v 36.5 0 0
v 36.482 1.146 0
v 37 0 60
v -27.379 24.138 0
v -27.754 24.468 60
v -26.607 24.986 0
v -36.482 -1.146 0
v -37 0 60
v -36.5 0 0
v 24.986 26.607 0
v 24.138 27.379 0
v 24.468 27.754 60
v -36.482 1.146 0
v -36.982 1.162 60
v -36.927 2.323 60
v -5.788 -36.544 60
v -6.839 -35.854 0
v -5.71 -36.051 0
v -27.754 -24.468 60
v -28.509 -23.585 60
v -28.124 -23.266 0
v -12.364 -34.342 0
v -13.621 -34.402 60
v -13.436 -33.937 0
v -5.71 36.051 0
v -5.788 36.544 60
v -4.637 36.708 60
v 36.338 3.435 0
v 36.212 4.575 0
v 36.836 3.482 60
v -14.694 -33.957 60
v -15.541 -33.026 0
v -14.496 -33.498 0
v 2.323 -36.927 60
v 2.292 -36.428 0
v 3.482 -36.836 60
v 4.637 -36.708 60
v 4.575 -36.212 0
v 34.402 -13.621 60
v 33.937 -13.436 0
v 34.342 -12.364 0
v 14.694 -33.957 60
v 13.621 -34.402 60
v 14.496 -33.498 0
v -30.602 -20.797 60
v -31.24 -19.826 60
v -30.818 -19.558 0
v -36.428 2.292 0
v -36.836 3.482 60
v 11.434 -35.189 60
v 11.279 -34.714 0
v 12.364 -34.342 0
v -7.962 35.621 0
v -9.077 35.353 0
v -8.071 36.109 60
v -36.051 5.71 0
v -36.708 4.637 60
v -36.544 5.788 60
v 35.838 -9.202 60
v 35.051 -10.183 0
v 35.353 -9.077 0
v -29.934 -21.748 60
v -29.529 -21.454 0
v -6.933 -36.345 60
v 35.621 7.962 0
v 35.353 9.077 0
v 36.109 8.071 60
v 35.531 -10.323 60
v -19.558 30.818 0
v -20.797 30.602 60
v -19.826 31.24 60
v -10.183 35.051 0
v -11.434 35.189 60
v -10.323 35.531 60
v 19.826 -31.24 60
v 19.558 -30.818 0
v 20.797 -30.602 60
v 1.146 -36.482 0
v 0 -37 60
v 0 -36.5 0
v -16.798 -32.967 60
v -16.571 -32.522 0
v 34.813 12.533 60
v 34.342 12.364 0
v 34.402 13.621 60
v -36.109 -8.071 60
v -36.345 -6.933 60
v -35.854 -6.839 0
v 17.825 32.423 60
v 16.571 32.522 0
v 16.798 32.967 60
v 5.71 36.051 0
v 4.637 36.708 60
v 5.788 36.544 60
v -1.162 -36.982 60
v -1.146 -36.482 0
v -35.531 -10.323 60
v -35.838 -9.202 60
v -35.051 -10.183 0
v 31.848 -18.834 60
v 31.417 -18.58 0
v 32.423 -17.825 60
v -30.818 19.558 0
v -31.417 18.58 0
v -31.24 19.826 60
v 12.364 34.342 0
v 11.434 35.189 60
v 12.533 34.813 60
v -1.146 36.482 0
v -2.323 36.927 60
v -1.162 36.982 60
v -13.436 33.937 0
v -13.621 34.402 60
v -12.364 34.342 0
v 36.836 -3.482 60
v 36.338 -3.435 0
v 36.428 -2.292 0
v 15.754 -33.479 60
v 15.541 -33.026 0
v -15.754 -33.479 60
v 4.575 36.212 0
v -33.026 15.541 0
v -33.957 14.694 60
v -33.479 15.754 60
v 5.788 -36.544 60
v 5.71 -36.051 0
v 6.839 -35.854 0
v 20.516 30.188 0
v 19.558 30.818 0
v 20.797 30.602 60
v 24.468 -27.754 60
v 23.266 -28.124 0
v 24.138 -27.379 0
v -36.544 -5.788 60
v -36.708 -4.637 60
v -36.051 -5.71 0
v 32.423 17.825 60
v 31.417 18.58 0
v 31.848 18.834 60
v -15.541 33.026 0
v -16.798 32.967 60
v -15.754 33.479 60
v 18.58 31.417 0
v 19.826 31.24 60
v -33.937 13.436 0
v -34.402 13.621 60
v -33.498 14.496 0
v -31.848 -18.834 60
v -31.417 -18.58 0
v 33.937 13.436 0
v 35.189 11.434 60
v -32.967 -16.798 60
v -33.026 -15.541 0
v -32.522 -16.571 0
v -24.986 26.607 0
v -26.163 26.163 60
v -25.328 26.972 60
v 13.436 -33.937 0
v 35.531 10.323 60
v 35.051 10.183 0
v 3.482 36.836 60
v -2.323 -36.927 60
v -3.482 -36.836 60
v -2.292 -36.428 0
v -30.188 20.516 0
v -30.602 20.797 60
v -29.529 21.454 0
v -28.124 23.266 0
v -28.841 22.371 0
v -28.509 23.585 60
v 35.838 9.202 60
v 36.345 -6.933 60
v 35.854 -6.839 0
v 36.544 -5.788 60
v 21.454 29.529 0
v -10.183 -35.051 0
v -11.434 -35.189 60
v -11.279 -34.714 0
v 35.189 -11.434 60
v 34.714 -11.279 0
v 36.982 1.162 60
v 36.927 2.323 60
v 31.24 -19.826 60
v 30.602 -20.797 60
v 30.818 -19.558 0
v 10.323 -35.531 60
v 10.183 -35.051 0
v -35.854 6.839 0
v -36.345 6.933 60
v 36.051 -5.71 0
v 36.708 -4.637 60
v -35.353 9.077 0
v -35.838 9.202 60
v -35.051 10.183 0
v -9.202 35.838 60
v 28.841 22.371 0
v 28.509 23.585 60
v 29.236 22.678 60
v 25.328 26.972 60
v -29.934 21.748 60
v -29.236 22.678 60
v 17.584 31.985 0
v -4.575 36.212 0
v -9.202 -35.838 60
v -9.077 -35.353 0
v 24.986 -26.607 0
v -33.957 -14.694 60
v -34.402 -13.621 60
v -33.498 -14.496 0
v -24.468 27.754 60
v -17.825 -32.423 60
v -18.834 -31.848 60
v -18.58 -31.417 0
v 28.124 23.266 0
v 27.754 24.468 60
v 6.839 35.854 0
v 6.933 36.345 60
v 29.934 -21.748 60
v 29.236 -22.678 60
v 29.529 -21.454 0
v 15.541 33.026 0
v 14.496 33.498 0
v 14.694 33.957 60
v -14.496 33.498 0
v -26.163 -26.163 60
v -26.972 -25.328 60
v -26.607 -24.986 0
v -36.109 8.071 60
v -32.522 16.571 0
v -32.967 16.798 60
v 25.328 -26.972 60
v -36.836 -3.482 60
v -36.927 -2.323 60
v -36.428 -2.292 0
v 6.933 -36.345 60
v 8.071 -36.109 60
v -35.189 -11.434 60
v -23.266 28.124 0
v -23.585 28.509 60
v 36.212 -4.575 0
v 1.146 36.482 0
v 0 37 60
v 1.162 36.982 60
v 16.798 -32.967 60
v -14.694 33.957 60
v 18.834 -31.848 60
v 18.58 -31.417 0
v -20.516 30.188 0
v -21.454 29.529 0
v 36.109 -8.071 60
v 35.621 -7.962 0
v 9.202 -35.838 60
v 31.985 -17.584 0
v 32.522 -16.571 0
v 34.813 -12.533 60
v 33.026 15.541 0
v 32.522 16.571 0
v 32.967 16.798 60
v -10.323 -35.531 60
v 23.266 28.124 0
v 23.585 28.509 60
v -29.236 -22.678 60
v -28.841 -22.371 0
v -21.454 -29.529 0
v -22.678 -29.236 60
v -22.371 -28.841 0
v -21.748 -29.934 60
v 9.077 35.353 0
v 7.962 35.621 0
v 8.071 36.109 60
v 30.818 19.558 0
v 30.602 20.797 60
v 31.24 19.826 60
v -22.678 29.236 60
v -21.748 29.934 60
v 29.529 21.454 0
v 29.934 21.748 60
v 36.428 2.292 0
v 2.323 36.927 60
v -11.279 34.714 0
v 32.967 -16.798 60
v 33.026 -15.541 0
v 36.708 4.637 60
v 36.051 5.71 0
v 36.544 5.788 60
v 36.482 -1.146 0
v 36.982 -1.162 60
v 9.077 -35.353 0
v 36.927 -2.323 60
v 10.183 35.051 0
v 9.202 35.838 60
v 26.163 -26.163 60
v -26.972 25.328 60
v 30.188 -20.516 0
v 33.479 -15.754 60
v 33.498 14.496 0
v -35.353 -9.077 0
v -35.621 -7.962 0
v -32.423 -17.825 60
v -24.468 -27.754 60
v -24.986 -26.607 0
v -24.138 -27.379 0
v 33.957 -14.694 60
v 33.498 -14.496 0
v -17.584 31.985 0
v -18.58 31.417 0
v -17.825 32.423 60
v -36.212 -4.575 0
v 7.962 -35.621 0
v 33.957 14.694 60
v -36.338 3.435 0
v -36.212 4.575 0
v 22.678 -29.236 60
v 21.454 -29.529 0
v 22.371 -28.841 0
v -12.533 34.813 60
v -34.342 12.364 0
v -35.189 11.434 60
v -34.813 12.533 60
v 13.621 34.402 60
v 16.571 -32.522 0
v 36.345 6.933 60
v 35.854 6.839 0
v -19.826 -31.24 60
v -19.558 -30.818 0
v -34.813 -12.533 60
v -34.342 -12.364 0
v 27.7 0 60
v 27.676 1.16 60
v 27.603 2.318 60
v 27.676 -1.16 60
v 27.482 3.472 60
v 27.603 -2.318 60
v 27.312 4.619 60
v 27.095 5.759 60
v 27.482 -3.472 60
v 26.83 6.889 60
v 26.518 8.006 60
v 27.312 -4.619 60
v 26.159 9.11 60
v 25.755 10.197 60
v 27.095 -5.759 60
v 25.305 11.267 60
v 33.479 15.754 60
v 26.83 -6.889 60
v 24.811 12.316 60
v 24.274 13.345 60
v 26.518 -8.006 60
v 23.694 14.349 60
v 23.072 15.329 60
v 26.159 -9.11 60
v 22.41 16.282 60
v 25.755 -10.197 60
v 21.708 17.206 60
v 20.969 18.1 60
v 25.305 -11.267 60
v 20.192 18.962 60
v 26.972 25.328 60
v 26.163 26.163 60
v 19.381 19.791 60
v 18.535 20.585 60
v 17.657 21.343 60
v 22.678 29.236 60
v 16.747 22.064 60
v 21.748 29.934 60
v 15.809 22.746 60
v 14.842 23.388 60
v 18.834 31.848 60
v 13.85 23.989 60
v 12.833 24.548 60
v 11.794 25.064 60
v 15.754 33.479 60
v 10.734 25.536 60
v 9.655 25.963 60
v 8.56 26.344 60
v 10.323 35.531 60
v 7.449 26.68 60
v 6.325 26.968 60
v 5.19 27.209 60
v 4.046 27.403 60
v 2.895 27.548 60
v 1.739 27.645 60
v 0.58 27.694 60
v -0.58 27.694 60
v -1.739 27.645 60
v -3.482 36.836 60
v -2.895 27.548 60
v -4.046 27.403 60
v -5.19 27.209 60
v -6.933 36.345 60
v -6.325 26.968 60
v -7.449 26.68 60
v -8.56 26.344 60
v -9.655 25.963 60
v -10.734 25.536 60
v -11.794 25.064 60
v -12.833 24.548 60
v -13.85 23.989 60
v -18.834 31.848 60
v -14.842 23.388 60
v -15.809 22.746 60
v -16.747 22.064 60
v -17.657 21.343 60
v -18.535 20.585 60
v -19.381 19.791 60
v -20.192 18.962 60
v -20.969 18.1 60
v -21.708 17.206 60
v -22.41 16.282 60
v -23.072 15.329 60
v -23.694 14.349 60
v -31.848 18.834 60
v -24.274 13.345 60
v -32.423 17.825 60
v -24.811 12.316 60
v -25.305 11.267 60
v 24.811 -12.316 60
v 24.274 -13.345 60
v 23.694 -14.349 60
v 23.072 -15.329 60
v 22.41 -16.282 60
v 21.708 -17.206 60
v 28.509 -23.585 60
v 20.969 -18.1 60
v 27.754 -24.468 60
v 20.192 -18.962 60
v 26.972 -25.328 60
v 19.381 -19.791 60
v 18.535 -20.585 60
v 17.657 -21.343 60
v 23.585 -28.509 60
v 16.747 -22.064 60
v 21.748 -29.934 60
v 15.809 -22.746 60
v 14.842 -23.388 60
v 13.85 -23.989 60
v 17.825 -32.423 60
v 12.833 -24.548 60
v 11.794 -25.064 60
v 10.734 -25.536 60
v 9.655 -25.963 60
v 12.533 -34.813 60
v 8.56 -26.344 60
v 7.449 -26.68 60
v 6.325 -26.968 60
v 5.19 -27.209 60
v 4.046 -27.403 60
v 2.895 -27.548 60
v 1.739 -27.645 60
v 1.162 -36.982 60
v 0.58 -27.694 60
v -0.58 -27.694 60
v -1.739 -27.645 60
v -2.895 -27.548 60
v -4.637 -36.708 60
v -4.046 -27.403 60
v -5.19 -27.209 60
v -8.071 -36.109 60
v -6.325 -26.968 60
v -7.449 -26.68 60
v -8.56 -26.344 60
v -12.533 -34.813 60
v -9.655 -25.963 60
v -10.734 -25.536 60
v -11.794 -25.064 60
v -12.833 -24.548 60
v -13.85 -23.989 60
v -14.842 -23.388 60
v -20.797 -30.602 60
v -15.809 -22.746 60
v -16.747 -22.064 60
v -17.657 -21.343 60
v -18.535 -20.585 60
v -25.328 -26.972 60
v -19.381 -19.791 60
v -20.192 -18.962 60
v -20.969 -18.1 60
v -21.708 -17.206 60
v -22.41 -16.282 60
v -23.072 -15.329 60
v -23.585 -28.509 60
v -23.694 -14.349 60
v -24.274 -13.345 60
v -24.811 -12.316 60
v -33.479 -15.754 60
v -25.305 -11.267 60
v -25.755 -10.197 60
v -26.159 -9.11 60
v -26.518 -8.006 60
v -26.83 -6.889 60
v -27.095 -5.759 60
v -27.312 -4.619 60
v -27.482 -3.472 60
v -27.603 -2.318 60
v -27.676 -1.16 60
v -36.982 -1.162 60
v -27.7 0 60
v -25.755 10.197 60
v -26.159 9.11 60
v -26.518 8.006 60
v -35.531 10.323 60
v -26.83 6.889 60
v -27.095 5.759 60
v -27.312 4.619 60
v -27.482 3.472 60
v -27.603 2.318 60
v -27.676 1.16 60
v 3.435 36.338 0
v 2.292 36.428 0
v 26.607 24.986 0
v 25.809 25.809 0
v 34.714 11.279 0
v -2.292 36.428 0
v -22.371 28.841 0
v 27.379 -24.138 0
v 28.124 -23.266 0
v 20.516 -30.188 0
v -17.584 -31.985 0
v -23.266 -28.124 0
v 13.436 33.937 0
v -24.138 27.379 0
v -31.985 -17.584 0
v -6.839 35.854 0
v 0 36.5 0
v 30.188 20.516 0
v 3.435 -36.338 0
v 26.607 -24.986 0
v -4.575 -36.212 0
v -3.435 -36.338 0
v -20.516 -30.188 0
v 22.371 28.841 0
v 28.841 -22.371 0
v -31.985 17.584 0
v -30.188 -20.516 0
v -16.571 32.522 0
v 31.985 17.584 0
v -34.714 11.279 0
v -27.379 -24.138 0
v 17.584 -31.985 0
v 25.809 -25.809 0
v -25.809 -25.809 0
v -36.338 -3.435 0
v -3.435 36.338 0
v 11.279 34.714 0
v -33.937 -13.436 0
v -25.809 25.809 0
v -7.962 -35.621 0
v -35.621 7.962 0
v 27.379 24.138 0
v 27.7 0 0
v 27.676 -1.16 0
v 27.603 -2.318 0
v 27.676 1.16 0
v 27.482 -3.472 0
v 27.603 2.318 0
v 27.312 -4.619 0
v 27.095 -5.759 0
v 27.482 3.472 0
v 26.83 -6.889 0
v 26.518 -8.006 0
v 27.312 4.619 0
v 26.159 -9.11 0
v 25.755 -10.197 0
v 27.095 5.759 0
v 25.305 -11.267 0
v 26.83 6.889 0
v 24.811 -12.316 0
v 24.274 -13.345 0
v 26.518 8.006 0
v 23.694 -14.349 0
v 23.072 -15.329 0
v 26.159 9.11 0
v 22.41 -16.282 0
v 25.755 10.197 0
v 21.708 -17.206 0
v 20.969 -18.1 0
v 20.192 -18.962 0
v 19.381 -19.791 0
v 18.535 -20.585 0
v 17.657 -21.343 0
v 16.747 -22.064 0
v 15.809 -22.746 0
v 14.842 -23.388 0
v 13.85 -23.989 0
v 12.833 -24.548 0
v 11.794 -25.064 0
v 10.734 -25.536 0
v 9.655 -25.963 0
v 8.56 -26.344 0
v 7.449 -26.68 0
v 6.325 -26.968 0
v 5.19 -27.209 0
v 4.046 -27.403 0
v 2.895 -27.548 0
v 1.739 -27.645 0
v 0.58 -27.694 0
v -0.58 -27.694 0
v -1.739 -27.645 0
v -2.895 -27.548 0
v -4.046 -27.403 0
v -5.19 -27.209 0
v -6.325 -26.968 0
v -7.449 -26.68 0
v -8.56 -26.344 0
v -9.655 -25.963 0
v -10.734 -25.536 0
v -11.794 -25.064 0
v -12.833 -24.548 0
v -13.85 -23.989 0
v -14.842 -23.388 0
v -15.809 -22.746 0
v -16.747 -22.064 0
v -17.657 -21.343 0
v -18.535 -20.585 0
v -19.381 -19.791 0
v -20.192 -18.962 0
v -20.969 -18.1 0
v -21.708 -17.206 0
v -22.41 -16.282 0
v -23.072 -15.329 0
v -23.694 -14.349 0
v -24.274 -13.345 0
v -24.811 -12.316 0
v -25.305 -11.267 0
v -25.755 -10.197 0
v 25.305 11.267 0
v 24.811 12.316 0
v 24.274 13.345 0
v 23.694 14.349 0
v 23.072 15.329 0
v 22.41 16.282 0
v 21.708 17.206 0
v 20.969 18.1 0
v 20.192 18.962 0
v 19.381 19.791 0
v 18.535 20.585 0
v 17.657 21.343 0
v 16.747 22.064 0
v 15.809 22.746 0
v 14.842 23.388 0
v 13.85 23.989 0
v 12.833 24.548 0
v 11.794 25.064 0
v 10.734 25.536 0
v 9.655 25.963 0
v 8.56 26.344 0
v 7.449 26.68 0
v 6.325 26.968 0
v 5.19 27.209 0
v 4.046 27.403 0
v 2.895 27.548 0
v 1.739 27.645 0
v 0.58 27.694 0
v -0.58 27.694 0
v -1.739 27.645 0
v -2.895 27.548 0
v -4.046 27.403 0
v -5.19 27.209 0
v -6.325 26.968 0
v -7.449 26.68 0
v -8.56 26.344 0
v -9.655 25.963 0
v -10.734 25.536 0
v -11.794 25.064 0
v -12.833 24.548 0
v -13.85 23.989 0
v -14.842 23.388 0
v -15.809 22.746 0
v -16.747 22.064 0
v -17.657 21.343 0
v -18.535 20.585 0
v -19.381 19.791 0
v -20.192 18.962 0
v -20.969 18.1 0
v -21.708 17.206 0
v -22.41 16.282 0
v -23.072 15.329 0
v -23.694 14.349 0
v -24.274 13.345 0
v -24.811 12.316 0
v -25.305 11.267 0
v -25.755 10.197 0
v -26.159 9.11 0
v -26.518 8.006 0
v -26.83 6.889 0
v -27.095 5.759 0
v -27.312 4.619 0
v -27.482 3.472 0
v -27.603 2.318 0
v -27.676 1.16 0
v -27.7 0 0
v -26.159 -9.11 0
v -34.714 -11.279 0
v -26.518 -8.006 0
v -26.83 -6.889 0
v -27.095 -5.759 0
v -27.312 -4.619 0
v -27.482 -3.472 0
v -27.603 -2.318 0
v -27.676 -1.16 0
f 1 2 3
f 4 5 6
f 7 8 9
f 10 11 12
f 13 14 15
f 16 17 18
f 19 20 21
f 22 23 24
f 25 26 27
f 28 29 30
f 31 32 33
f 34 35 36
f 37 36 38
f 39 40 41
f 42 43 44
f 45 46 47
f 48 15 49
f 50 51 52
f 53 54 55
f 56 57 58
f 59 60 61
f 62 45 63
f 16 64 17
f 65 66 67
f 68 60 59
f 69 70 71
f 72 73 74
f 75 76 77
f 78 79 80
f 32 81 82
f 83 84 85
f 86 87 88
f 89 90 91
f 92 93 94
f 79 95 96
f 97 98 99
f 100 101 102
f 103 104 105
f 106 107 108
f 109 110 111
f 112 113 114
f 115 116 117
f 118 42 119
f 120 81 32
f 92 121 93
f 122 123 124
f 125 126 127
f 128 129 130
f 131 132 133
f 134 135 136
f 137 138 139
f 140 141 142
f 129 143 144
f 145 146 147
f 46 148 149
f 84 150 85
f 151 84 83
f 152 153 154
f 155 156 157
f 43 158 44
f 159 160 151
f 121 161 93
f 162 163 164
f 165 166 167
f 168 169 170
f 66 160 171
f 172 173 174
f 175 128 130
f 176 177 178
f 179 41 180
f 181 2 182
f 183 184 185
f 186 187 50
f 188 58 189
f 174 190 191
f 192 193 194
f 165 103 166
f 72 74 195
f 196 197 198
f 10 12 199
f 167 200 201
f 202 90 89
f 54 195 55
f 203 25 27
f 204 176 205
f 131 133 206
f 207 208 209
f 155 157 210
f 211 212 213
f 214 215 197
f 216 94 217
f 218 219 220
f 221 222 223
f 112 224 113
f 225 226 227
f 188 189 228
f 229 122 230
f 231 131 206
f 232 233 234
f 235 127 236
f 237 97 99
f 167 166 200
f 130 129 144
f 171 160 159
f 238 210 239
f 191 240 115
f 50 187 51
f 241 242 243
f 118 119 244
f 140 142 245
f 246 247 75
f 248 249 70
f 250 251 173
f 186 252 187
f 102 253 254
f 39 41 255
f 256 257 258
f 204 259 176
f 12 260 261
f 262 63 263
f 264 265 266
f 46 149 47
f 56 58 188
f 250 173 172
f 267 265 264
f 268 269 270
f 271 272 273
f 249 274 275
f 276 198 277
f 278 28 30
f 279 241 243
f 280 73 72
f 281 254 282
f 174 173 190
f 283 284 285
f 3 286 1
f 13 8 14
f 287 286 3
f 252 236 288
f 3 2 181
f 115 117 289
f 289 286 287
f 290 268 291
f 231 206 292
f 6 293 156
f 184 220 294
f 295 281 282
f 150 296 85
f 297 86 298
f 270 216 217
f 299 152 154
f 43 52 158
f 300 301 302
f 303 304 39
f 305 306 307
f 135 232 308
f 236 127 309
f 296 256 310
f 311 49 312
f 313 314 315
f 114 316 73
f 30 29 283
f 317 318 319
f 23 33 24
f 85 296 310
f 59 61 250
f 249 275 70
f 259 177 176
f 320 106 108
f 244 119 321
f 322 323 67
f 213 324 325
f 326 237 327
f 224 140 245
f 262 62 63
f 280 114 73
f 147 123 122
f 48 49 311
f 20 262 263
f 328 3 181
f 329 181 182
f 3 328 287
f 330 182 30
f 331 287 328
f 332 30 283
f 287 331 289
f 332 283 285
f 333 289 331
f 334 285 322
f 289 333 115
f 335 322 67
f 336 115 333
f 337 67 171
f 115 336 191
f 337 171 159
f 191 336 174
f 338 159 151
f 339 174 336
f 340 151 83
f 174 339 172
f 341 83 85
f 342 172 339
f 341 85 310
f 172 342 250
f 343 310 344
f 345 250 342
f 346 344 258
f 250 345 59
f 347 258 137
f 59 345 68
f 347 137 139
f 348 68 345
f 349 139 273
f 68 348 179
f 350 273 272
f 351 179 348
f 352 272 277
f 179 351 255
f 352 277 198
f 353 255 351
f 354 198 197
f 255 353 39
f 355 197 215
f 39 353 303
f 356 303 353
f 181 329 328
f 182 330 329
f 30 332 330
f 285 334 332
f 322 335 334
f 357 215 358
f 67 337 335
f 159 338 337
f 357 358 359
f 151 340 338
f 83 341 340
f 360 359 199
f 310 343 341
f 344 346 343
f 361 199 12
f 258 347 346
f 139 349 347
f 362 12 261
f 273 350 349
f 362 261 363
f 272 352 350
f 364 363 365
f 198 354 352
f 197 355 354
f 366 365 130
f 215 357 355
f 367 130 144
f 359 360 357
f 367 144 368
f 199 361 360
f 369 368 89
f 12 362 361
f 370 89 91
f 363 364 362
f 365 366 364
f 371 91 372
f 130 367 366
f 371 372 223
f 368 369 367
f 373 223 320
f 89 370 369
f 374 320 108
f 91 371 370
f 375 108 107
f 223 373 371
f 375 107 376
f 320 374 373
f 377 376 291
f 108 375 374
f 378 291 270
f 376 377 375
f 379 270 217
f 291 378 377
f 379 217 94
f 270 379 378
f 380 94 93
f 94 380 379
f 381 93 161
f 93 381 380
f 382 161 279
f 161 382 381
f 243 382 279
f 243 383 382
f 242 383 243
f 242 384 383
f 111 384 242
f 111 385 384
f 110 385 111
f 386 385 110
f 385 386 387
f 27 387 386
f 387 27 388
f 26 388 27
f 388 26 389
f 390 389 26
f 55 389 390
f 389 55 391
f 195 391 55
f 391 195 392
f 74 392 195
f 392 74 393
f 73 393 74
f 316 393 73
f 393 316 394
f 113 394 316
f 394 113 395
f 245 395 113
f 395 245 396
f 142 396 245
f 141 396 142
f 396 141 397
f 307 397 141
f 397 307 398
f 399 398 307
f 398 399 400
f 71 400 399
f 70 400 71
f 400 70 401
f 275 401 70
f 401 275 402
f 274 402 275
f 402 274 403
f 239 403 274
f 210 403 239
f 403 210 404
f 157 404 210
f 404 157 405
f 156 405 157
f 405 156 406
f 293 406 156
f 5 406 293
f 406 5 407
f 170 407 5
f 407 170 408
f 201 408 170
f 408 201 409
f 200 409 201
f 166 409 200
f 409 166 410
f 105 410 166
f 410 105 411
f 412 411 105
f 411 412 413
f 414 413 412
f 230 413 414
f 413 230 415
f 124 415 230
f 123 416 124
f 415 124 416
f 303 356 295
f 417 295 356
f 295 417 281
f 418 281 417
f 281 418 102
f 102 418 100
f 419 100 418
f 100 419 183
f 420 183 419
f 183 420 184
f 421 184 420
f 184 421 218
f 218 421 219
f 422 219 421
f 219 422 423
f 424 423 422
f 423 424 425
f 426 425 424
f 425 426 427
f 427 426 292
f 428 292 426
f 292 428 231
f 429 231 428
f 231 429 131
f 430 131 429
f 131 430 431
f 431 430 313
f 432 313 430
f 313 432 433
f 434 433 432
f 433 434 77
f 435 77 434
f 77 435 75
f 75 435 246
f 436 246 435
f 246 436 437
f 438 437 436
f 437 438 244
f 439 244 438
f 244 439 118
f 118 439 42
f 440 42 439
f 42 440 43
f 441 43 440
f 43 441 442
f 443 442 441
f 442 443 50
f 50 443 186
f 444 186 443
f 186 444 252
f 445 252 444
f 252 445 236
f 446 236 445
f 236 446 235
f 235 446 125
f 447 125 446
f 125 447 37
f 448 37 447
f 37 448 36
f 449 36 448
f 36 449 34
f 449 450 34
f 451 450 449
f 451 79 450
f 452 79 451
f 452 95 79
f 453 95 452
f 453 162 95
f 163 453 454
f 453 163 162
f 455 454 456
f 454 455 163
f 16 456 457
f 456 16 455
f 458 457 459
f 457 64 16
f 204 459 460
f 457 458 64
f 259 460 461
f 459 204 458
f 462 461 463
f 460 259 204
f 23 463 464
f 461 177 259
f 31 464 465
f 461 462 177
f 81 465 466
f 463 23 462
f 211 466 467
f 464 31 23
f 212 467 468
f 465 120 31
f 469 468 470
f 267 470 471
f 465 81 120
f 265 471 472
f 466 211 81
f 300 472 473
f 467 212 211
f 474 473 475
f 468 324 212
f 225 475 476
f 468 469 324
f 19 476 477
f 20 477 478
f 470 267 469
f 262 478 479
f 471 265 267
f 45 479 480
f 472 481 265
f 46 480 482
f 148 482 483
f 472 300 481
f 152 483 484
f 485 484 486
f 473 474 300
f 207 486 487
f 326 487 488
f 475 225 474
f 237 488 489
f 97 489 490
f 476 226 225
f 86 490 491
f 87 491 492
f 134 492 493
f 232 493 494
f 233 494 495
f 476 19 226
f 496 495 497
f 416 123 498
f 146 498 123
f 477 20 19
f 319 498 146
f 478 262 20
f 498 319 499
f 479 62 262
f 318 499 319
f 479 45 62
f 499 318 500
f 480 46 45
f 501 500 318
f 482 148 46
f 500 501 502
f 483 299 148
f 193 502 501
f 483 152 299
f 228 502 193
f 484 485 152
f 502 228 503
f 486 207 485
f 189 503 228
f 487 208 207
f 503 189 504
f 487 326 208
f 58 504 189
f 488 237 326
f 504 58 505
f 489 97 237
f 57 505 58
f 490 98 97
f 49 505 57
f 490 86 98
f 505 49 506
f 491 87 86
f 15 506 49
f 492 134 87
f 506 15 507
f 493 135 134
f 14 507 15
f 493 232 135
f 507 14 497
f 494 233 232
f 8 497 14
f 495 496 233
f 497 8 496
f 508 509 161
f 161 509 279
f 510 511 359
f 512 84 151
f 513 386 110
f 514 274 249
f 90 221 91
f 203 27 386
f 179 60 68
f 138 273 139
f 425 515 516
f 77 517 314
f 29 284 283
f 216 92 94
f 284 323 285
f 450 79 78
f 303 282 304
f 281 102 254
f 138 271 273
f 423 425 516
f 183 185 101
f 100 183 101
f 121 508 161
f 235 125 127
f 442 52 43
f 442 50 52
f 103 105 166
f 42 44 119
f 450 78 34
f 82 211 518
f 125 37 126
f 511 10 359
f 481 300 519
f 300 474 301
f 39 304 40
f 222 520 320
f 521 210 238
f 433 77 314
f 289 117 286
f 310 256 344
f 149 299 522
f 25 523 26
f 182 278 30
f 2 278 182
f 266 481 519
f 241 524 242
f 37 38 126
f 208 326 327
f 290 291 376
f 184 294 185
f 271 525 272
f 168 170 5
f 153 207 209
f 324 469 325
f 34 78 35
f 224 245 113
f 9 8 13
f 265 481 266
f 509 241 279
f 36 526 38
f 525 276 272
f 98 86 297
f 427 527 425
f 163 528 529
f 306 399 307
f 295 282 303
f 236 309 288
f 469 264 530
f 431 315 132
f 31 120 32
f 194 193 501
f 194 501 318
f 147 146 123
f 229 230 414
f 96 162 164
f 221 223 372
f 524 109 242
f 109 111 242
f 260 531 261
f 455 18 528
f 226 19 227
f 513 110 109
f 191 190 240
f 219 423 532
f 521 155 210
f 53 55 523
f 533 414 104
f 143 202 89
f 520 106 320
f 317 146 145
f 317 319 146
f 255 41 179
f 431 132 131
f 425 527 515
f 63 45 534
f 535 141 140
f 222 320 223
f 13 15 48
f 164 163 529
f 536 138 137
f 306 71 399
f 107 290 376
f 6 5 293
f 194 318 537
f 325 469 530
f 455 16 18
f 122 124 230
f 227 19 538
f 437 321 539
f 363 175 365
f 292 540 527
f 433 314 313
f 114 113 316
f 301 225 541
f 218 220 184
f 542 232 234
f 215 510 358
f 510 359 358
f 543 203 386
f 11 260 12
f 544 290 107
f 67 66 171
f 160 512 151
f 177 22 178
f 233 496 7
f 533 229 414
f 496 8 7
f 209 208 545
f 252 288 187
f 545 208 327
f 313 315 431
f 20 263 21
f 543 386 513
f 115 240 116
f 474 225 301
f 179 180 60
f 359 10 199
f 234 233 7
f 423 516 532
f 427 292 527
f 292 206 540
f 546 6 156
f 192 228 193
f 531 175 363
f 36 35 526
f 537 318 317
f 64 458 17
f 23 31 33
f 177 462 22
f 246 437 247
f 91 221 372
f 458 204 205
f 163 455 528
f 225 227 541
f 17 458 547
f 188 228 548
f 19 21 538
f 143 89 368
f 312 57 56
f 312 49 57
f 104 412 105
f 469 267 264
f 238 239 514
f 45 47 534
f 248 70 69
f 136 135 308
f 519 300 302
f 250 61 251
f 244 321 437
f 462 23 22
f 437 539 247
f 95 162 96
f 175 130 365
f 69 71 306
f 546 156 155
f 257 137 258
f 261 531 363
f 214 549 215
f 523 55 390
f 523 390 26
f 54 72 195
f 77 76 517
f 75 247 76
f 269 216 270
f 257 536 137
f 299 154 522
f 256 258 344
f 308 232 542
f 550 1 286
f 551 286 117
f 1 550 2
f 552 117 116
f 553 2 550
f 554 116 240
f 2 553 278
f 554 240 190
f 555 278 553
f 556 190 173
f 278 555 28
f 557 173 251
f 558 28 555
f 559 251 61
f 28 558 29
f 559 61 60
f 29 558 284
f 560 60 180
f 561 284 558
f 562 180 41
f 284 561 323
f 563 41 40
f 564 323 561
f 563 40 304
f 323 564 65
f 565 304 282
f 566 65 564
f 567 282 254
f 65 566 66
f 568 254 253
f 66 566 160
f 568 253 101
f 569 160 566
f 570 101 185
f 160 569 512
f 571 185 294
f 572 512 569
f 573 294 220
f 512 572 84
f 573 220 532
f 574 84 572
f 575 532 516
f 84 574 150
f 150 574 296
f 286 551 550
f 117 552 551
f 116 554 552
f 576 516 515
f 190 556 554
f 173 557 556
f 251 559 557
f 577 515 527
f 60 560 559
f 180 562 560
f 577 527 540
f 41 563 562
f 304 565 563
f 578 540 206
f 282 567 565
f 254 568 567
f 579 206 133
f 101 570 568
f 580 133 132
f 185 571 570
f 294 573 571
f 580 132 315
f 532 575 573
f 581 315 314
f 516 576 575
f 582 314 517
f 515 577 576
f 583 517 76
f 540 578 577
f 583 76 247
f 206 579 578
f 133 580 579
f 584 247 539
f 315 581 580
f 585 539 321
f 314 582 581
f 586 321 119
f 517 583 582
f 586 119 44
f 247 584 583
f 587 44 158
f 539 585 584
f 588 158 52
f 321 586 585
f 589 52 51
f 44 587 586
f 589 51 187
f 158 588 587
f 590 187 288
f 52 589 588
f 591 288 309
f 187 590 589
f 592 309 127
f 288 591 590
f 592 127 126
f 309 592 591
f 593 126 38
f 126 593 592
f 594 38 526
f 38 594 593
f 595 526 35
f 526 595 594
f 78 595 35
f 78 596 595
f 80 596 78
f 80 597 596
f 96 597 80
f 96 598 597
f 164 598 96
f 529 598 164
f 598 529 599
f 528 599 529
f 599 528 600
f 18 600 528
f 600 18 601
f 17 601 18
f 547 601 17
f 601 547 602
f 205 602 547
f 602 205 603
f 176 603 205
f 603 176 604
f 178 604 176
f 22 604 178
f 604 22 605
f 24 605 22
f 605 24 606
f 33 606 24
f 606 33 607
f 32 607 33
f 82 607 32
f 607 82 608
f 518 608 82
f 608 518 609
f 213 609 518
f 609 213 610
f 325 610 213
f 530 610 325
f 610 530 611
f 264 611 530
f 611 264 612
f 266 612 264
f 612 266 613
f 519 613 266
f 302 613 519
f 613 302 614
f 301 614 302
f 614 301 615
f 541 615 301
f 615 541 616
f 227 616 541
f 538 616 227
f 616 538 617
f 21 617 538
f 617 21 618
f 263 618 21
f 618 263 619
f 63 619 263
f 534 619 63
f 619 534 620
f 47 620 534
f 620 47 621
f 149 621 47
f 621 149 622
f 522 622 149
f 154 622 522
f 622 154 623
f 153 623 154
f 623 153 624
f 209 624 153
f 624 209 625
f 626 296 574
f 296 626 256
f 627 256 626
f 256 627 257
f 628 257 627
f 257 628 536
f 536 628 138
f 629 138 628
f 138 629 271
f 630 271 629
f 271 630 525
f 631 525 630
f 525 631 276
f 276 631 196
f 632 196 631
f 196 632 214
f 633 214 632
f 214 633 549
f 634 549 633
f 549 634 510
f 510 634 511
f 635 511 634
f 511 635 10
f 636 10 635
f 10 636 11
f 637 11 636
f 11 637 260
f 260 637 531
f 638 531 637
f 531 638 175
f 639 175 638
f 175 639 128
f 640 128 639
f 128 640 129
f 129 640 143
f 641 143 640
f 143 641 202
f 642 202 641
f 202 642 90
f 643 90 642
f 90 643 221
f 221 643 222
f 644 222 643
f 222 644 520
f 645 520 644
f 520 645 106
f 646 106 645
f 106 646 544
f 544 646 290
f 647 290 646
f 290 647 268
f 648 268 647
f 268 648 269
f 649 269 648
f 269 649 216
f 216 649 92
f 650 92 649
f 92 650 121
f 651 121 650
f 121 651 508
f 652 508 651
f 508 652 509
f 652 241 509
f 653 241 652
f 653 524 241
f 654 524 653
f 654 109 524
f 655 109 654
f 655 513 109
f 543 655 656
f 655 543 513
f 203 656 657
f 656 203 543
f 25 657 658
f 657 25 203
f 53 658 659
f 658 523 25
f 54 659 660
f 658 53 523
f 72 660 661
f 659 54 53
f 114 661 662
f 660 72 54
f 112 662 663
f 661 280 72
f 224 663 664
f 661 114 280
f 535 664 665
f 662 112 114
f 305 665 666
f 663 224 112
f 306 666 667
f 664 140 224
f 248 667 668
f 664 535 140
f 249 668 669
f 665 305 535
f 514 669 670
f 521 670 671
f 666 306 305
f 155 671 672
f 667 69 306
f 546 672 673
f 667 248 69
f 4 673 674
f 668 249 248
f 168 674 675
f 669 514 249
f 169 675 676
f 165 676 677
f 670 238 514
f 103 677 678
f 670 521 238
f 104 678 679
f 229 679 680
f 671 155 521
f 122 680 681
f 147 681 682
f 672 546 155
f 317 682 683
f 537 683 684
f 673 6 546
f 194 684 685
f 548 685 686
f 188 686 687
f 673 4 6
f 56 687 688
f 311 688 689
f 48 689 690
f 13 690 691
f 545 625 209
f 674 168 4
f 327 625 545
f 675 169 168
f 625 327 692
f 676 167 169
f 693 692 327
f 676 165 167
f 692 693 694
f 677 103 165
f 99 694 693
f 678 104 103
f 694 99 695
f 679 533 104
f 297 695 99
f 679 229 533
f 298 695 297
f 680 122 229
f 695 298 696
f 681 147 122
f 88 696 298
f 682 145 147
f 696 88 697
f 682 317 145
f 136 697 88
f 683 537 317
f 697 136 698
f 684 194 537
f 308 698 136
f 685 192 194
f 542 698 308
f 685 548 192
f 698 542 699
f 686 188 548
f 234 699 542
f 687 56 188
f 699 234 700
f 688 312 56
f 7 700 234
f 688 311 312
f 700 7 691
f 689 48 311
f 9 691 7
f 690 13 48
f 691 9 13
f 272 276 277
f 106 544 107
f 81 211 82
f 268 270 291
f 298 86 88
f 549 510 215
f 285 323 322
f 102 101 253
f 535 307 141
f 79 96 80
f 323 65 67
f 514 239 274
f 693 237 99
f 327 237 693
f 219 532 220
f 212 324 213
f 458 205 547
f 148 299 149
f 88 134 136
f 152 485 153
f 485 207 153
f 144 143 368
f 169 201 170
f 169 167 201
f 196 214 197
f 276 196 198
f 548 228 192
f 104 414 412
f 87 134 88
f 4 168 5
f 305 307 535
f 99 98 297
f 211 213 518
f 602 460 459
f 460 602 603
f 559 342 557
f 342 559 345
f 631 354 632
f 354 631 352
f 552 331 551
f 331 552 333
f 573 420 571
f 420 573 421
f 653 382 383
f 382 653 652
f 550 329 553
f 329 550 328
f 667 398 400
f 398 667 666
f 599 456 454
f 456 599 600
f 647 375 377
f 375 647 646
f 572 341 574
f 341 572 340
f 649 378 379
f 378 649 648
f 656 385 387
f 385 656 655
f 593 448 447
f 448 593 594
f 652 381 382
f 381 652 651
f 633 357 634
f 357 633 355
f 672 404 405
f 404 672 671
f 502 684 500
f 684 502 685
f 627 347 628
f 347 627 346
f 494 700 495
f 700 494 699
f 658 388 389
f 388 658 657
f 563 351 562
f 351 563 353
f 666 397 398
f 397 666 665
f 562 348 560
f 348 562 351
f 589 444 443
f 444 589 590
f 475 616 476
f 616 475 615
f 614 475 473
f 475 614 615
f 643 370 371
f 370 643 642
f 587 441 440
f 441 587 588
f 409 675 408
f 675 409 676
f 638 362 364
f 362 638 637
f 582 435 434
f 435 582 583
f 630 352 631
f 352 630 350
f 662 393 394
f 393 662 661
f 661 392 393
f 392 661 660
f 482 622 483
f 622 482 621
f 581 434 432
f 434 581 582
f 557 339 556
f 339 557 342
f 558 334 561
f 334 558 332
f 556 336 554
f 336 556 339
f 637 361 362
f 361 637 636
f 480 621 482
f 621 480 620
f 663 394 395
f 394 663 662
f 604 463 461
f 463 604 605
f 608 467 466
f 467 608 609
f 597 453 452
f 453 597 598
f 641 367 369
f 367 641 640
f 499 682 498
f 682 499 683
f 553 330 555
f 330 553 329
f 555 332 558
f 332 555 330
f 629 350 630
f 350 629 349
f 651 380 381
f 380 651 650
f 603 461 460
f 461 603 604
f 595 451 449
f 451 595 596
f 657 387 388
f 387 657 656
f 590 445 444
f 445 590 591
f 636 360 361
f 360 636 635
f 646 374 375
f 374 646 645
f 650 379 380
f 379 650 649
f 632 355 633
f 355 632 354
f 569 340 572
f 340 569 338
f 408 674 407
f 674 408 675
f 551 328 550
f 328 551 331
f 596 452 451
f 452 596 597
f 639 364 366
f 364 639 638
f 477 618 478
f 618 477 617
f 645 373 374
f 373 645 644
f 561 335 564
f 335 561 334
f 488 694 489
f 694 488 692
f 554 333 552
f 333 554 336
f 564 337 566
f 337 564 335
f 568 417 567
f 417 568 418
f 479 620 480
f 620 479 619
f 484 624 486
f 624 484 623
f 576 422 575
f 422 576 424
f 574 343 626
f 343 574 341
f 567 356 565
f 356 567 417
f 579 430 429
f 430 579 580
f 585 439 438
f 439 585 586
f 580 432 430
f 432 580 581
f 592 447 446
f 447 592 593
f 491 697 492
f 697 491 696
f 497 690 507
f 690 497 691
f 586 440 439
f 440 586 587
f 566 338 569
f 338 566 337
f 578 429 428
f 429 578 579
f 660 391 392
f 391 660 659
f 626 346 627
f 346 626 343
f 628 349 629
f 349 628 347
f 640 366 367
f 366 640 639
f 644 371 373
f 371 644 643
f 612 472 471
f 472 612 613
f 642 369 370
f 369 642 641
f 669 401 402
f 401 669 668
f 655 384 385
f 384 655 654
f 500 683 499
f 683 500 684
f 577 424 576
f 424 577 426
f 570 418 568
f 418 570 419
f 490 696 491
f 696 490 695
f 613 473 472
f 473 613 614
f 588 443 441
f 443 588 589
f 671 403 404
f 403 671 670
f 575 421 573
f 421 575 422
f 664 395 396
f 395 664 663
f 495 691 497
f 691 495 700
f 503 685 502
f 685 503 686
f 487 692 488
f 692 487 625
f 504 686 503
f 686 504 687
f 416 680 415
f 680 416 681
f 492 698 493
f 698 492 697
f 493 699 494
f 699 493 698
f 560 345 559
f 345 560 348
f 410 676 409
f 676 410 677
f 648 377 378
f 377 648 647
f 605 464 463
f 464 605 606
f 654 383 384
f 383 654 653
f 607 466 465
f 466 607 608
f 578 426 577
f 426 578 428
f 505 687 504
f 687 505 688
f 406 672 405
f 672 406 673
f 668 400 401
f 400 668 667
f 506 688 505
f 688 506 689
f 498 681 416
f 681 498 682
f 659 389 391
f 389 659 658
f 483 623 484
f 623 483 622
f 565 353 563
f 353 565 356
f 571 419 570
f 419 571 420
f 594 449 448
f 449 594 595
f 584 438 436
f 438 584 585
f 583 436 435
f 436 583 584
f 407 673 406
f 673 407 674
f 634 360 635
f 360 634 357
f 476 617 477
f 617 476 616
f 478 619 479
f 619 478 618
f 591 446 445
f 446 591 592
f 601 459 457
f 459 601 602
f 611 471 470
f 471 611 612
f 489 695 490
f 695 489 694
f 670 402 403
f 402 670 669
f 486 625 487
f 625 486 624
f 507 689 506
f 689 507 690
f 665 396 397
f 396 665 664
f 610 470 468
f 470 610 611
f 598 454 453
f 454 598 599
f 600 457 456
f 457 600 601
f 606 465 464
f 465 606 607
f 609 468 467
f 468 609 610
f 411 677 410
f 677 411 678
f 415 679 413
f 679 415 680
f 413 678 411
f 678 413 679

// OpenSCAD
// file: ../utils/spool_core_sleeve.scad
/*
//--------------------------------------------------------------
//  Core‑Sleeve Spool Adapter  ✧  v1.1  (CC0‑1.0 / public domain)
//  Library module for parametric spool-core sleeves.
//  Example usage:
//      use <../utils/spool_core_sleeve.scad>;
//      spool_core_sleeve(inner_id=55, target_od=63, target_od_end=64,
//                        length=60, clearance=0.20);
//
//  Parameters:
//    inner_id   — measured bore ID (mm), e.g. 55 (≈AMS axle)
//    target_od      — outer diameter at z=0 (mm), e.g. 63 (Sunlu spool)
//    target_od_end  — outer diameter at z=length (mm); defaults to target_od
//    length         — axial length (mm), e.g. 60
//    clearance  — extra diameter added to bore (total), default 0.20
//    $fn_outer  — circle resolution for outer cylinder
//    $fn_inner  — circle resolution for inner bore
//
//  Notes:
//  • "clearance" is applied to the *diameter* of the bore (2× radial).
//  • Echoes computed wall thickness so test scripts can sanity-check values.
//--------------------------------------------------------------
*/

module spool_core_sleeve(
    inner_id      = 55,
    target_od     = 63,
    target_od_end = undef,
    length        = 60,
    clearance     = 0.20,
    $fn_outer     = 200,
    $fn_inner     = 150
) {
    target_od_end = is_undef(target_od_end) ? target_od : target_od_end;

    // Basic parameter validation
    assert(
        min(target_od, target_od_end) > inner_id + 2 * clearance,
        str("invalid dims: outer diameters (", target_od, ", ", target_od_end,
            ") must exceed inner_id + 2*clearance (",
            inner_id + 2 * clearance, ")")
    );

    wall_start = (target_od - inner_id) / 2;
    wall_end   = (target_od_end - inner_id) / 2;
    echo(str("Radial wall thickness: ", wall_start, " mm -> ",
             wall_end, " mm"));

    difference() {
        // OUTER – linearly interpolate between diameters
        cylinder(d1 = target_od, d2 = target_od_end, h = length, $fn = $fn_outer);
        // BORE — extended ±1mm to avoid z-fusing
        translate([0, 0, -1])
            cylinder(
                d = inner_id + 2 * clearance, h = length + 2, $fn = $fn_inner
            );
    }
}

// Optional named presets (extend as you collect measurements)
function _spool_core_sleeve_preset(preset) =
    (preset == "sunlu55_to63_len60") ? [55, 63, 64, 60, 0.20] :
    (preset == "sunlu55_to63cyl_len60") ? [55, 63, 63, 60, 0.20] :
    (preset == "sunlu55_to73_len60") ? [55, 73, 74, 60, 0.20] :
    (preset == "sunlu55_to73cyl_len60") ? [55, 73, 73, 60, 0.20] :
    undef;

module spool_core_sleeve_preset(
    preset = "sunlu55_to63_len60", $fn_outer = 200, $fn_inner = 150
) {
    p = _spool_core_sleeve_preset(preset);
    assert(p != undef, str("unknown preset: ", preset));
    spool_core_sleeve(
        inner_id      = p[0],
        target_od     = p[1],
        target_od_end = p[2],
        length        = p[3],
        clearance     = p[4],
        $fn_outer     = $fn_outer,
        $fn_inner     = $fn_inner
    );
}

// End of library
// main file
use <../utils/spool_core_sleeve.scad>;

spool_core_sleeve_preset("sunlu55_to73_len60");
